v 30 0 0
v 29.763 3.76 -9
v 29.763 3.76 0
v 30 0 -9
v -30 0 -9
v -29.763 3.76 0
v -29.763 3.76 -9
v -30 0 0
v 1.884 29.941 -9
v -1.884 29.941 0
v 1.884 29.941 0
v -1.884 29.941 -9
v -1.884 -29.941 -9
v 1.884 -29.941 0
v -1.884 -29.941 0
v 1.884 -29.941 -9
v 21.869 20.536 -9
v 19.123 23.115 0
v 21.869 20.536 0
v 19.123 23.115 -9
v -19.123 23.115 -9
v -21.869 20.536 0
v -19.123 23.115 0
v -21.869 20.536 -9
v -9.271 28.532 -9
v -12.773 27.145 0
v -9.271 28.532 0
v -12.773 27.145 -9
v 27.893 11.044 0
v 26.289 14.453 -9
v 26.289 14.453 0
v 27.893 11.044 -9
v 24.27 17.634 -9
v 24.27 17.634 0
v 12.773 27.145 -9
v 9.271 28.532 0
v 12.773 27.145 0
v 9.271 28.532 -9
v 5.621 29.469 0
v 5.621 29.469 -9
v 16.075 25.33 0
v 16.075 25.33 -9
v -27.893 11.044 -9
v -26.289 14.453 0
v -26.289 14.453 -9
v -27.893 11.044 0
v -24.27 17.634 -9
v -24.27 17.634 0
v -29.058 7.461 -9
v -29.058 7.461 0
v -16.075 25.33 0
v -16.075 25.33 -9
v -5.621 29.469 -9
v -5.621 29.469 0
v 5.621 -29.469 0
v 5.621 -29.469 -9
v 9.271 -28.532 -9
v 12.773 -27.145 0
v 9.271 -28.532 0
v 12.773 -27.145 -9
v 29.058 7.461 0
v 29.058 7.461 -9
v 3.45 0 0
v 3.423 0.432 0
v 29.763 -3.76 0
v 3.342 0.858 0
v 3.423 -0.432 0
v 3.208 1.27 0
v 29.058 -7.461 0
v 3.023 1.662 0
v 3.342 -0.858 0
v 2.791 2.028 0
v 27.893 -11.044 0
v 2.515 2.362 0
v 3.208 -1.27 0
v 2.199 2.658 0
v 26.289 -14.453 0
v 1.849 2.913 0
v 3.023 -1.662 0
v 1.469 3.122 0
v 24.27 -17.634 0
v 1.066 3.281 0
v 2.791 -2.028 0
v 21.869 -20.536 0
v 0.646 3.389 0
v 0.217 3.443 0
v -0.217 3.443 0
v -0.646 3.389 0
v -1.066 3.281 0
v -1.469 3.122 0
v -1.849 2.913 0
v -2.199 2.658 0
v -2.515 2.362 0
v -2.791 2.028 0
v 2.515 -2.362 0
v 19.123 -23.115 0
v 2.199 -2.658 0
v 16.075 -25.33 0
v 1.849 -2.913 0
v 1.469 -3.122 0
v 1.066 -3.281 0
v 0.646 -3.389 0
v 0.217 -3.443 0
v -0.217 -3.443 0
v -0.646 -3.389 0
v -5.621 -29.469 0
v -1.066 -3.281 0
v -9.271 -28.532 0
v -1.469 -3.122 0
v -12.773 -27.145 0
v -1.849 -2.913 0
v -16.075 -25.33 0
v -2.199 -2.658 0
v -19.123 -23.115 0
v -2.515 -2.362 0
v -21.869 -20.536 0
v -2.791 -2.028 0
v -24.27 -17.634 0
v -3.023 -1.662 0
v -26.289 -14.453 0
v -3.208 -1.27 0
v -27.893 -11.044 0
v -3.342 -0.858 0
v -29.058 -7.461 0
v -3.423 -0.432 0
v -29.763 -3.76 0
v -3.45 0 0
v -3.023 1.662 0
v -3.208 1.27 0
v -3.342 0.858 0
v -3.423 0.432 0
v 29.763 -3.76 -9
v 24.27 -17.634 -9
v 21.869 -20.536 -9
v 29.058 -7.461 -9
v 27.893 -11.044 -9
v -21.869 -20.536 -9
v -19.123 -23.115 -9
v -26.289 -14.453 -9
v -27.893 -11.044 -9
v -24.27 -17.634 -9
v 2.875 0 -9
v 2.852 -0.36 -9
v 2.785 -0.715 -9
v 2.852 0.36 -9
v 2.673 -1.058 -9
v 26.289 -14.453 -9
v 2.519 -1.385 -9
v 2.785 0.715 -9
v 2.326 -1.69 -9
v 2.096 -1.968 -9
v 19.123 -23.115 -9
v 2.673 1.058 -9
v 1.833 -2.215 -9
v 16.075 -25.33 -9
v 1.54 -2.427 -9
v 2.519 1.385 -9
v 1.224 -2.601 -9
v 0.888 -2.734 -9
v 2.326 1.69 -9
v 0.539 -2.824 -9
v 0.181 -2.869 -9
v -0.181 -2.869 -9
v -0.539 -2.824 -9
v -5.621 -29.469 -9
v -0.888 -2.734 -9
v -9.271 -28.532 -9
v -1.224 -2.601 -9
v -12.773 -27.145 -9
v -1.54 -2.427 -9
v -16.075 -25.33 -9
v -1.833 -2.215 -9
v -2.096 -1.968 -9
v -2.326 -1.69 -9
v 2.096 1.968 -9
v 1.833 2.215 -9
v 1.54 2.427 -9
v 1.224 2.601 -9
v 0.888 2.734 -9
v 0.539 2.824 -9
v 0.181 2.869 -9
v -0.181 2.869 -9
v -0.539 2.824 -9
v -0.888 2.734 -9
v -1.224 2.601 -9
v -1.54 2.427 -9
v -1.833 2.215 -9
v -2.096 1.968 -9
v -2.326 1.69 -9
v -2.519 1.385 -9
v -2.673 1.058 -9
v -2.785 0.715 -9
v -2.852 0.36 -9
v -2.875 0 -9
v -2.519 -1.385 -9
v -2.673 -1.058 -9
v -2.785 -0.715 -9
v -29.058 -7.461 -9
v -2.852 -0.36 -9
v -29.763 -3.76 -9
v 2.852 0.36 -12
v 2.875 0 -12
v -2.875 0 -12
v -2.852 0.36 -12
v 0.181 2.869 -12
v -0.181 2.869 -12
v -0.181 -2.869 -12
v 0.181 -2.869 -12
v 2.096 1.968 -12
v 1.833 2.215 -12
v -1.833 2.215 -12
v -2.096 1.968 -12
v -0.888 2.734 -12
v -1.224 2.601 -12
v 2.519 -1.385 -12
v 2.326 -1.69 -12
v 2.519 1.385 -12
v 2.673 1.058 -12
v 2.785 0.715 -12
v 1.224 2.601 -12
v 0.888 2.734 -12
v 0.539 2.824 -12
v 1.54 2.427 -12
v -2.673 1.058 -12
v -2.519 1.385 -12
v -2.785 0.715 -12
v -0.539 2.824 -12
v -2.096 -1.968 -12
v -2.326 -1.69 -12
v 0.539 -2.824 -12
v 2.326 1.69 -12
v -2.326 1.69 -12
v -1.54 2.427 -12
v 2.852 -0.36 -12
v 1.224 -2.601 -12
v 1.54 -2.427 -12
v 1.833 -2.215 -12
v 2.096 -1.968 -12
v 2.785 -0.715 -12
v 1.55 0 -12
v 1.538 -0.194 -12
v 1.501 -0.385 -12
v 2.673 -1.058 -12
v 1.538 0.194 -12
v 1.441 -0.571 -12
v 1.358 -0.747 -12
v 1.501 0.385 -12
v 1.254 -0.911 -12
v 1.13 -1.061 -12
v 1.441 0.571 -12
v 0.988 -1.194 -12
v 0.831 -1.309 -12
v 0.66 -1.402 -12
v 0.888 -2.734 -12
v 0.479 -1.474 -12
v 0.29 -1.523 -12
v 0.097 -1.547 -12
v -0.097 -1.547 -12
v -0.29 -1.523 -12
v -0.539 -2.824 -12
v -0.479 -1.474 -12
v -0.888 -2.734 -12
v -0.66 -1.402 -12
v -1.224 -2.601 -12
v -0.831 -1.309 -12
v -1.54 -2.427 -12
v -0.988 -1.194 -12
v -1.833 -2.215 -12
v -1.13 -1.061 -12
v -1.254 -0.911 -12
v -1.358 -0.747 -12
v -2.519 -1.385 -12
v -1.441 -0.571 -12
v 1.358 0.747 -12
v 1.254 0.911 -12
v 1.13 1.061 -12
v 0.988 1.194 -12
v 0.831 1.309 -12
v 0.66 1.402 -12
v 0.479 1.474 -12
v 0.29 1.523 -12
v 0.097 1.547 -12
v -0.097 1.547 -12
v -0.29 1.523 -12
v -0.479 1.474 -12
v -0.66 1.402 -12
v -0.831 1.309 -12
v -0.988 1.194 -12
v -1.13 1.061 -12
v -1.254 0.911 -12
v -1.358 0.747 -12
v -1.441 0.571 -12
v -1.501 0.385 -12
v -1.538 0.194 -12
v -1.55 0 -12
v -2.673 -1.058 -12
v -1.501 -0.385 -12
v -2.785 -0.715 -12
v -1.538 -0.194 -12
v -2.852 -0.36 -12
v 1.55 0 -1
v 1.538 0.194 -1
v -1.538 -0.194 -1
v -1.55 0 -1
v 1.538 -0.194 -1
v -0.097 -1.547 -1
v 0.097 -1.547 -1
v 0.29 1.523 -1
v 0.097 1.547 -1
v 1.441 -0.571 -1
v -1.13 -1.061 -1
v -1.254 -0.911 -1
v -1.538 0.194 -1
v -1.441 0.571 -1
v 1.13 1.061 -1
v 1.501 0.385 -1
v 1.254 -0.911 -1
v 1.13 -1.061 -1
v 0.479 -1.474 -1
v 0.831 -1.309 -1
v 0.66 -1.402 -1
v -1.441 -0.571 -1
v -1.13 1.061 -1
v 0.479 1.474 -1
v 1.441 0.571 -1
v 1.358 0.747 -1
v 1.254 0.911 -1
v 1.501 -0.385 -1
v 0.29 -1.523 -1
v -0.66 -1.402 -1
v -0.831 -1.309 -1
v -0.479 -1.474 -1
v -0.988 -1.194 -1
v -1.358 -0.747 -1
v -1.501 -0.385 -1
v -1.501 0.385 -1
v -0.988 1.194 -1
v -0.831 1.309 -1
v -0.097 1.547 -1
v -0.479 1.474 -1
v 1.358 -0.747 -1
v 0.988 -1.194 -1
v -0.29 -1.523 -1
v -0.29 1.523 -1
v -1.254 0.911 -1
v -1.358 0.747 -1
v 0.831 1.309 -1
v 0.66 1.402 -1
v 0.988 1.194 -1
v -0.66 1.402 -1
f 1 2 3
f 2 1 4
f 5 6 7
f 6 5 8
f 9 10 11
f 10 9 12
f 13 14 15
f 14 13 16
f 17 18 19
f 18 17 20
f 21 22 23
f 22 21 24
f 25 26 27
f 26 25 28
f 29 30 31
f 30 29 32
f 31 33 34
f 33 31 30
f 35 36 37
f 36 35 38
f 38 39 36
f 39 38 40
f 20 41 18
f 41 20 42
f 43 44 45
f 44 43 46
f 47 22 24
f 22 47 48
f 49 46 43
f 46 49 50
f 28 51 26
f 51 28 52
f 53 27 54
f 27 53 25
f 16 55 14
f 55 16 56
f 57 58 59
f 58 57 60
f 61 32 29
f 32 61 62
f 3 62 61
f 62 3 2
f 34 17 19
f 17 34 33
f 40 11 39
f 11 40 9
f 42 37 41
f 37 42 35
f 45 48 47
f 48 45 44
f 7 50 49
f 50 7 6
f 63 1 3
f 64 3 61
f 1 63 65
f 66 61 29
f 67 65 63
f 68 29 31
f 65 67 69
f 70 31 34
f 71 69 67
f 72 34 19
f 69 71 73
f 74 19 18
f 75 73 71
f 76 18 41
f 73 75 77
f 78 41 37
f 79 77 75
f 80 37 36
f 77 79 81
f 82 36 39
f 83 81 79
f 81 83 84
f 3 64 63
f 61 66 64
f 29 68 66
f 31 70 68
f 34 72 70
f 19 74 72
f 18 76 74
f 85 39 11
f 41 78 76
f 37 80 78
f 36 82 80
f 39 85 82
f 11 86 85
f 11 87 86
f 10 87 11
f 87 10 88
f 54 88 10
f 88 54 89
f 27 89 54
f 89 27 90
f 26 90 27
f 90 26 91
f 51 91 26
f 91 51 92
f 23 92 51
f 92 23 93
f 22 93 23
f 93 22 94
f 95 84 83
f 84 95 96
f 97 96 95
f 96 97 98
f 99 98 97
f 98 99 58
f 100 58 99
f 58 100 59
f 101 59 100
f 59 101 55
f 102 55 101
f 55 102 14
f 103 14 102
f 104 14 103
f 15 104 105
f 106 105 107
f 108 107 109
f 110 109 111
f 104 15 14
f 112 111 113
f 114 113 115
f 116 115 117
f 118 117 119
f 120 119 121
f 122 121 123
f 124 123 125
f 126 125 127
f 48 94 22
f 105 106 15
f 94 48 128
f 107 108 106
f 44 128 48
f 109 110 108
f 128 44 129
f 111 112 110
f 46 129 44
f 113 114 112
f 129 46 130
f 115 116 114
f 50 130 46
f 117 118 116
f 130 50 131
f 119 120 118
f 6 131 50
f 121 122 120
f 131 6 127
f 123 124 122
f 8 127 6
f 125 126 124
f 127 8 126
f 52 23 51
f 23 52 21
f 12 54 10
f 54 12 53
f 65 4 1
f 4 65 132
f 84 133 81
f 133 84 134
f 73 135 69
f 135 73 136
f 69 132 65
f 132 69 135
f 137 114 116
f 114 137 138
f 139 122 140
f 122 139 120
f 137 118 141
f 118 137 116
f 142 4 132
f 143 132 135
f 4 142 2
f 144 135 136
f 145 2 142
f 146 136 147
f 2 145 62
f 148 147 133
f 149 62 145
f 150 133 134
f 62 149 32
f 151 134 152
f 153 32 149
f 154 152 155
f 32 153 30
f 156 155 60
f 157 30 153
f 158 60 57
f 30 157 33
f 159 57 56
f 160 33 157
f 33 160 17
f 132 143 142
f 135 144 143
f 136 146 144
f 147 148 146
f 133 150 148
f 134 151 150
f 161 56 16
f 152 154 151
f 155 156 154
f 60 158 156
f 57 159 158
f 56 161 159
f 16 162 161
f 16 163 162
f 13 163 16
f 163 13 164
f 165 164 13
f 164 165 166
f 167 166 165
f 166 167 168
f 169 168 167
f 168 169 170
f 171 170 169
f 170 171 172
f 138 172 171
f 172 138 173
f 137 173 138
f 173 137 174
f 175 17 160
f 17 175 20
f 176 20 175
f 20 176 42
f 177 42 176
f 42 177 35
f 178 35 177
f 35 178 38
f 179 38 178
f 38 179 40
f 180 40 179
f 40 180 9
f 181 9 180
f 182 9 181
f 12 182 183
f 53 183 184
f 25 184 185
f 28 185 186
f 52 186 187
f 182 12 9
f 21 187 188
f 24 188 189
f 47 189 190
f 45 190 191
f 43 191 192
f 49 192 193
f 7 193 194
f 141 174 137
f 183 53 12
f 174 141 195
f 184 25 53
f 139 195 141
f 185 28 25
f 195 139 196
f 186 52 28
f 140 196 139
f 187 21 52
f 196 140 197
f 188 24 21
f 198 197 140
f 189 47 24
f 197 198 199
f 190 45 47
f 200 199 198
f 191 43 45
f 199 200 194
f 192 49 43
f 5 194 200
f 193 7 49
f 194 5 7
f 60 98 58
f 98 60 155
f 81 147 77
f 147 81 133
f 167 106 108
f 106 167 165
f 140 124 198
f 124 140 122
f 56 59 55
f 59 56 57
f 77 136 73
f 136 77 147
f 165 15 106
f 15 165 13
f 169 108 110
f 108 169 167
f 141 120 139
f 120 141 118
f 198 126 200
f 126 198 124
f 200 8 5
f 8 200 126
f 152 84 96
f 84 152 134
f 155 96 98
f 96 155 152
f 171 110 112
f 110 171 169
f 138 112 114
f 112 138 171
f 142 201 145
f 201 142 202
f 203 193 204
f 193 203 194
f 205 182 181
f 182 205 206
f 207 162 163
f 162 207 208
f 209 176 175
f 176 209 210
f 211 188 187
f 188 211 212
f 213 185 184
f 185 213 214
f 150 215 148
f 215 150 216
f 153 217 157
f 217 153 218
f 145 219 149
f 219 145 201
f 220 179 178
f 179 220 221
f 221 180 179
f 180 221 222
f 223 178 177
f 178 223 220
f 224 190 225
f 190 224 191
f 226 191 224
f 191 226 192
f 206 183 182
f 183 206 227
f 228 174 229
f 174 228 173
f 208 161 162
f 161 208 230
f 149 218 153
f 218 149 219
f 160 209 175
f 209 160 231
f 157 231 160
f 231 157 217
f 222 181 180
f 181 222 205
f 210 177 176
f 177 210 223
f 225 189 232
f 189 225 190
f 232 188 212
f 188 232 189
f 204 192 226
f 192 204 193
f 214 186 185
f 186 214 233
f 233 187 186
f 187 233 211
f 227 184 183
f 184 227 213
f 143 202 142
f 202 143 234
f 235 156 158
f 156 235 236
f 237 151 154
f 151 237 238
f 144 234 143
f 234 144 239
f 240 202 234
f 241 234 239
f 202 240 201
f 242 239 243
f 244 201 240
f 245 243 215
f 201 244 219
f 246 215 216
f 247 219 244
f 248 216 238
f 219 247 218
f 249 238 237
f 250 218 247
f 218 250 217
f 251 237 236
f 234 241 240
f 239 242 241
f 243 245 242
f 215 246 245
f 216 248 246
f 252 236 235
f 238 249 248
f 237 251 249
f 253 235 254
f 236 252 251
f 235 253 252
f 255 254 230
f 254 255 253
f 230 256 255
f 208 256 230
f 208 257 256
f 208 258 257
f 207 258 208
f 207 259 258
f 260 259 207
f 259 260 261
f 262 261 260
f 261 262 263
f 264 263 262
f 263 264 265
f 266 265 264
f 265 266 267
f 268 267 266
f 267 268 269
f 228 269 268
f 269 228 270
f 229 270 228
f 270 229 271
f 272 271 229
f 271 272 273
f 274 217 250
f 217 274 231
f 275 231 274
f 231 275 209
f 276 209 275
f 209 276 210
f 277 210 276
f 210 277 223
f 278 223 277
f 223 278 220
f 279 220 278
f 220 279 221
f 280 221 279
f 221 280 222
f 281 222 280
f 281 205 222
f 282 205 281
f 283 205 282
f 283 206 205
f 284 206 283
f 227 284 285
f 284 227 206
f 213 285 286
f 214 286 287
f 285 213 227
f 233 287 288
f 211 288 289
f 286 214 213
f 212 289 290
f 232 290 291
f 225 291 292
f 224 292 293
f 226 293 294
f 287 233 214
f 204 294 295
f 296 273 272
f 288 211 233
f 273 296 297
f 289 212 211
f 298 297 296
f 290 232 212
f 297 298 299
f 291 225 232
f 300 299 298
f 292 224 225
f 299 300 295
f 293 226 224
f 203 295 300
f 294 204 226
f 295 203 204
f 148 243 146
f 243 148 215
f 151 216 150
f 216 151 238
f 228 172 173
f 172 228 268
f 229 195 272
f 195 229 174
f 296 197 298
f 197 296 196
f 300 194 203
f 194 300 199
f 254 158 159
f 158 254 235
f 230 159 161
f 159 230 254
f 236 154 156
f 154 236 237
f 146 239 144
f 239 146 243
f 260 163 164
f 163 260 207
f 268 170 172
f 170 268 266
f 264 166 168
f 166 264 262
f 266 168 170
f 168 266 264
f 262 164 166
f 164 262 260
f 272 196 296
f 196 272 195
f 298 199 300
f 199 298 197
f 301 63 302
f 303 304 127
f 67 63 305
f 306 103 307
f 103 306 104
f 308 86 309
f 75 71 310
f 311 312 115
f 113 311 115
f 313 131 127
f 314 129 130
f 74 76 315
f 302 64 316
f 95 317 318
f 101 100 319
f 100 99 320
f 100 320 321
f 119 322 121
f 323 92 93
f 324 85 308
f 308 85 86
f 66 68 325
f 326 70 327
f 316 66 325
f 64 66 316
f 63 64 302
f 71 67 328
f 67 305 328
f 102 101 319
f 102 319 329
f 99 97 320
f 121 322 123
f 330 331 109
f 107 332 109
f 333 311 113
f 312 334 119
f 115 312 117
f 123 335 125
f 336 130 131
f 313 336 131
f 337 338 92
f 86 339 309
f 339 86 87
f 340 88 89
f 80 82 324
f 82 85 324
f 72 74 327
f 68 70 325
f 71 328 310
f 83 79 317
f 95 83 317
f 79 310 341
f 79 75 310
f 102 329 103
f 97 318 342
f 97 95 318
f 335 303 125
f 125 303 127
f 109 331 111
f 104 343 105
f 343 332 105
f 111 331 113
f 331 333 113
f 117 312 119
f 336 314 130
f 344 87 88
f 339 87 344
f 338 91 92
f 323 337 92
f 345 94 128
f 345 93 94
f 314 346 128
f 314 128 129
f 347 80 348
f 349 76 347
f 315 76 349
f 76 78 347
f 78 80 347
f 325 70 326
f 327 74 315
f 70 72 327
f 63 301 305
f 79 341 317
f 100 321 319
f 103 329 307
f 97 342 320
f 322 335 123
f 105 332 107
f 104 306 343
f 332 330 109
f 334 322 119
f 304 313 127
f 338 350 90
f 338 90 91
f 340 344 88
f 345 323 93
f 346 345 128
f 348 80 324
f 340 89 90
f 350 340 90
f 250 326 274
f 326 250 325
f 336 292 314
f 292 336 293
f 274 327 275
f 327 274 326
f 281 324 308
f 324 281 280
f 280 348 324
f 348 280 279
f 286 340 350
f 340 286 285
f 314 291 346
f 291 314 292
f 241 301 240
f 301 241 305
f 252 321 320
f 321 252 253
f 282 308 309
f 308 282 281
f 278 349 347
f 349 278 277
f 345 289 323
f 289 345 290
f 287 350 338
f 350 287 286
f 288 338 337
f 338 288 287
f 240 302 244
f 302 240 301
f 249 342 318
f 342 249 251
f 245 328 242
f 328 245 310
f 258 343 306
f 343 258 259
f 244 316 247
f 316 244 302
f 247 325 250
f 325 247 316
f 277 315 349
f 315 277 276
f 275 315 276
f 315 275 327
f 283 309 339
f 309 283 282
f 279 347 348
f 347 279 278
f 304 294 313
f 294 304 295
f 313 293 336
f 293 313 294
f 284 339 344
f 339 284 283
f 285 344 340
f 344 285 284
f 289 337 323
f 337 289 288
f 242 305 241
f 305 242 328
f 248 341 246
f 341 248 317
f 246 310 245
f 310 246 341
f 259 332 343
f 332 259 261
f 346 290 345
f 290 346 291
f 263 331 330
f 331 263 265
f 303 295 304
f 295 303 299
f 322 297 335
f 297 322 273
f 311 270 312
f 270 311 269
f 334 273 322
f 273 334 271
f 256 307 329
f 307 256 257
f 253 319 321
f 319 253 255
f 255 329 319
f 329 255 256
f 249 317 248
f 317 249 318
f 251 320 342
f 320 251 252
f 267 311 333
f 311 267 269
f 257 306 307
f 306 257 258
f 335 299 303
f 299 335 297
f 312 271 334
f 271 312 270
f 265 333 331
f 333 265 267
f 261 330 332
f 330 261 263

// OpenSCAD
$fn = 50;


difference() {
	union() {
		translate(v = [0, 0, -9.0000000000]) {
			cylinder(h = 9, r = 30.0000000000);
		}
		translate(v = [0, 0, -12.0000000000]) {
			cylinder(h = 12, r = 2.8750000000);
		}
	}
	union() {
		translate(v = [0, 0, 0]) {
			rotate(a = [0, 0, 0]) {
				difference() {
					union() {
						translate(v = [0, 0, -12.0000000000]) {
							cylinder(h = 12, r = 1.2500000000);
						}
						translate(v = [0, 0, -1.0000000000]) {
							cylinder(h = 1.0000000000, r1 = 1.5500000000, r2 = 3.4500000000);
						}
						translate(v = [0, 0, -12.0000000000]) {
							cylinder(h = 12, r = 1.5500000000);
						}
						translate(v = [0, 0, -12.0000000000]) {
							cylinder(h = 12, r = 1.2500000000);
						}
					}
					union();
				}
			}
		}
	}
}
